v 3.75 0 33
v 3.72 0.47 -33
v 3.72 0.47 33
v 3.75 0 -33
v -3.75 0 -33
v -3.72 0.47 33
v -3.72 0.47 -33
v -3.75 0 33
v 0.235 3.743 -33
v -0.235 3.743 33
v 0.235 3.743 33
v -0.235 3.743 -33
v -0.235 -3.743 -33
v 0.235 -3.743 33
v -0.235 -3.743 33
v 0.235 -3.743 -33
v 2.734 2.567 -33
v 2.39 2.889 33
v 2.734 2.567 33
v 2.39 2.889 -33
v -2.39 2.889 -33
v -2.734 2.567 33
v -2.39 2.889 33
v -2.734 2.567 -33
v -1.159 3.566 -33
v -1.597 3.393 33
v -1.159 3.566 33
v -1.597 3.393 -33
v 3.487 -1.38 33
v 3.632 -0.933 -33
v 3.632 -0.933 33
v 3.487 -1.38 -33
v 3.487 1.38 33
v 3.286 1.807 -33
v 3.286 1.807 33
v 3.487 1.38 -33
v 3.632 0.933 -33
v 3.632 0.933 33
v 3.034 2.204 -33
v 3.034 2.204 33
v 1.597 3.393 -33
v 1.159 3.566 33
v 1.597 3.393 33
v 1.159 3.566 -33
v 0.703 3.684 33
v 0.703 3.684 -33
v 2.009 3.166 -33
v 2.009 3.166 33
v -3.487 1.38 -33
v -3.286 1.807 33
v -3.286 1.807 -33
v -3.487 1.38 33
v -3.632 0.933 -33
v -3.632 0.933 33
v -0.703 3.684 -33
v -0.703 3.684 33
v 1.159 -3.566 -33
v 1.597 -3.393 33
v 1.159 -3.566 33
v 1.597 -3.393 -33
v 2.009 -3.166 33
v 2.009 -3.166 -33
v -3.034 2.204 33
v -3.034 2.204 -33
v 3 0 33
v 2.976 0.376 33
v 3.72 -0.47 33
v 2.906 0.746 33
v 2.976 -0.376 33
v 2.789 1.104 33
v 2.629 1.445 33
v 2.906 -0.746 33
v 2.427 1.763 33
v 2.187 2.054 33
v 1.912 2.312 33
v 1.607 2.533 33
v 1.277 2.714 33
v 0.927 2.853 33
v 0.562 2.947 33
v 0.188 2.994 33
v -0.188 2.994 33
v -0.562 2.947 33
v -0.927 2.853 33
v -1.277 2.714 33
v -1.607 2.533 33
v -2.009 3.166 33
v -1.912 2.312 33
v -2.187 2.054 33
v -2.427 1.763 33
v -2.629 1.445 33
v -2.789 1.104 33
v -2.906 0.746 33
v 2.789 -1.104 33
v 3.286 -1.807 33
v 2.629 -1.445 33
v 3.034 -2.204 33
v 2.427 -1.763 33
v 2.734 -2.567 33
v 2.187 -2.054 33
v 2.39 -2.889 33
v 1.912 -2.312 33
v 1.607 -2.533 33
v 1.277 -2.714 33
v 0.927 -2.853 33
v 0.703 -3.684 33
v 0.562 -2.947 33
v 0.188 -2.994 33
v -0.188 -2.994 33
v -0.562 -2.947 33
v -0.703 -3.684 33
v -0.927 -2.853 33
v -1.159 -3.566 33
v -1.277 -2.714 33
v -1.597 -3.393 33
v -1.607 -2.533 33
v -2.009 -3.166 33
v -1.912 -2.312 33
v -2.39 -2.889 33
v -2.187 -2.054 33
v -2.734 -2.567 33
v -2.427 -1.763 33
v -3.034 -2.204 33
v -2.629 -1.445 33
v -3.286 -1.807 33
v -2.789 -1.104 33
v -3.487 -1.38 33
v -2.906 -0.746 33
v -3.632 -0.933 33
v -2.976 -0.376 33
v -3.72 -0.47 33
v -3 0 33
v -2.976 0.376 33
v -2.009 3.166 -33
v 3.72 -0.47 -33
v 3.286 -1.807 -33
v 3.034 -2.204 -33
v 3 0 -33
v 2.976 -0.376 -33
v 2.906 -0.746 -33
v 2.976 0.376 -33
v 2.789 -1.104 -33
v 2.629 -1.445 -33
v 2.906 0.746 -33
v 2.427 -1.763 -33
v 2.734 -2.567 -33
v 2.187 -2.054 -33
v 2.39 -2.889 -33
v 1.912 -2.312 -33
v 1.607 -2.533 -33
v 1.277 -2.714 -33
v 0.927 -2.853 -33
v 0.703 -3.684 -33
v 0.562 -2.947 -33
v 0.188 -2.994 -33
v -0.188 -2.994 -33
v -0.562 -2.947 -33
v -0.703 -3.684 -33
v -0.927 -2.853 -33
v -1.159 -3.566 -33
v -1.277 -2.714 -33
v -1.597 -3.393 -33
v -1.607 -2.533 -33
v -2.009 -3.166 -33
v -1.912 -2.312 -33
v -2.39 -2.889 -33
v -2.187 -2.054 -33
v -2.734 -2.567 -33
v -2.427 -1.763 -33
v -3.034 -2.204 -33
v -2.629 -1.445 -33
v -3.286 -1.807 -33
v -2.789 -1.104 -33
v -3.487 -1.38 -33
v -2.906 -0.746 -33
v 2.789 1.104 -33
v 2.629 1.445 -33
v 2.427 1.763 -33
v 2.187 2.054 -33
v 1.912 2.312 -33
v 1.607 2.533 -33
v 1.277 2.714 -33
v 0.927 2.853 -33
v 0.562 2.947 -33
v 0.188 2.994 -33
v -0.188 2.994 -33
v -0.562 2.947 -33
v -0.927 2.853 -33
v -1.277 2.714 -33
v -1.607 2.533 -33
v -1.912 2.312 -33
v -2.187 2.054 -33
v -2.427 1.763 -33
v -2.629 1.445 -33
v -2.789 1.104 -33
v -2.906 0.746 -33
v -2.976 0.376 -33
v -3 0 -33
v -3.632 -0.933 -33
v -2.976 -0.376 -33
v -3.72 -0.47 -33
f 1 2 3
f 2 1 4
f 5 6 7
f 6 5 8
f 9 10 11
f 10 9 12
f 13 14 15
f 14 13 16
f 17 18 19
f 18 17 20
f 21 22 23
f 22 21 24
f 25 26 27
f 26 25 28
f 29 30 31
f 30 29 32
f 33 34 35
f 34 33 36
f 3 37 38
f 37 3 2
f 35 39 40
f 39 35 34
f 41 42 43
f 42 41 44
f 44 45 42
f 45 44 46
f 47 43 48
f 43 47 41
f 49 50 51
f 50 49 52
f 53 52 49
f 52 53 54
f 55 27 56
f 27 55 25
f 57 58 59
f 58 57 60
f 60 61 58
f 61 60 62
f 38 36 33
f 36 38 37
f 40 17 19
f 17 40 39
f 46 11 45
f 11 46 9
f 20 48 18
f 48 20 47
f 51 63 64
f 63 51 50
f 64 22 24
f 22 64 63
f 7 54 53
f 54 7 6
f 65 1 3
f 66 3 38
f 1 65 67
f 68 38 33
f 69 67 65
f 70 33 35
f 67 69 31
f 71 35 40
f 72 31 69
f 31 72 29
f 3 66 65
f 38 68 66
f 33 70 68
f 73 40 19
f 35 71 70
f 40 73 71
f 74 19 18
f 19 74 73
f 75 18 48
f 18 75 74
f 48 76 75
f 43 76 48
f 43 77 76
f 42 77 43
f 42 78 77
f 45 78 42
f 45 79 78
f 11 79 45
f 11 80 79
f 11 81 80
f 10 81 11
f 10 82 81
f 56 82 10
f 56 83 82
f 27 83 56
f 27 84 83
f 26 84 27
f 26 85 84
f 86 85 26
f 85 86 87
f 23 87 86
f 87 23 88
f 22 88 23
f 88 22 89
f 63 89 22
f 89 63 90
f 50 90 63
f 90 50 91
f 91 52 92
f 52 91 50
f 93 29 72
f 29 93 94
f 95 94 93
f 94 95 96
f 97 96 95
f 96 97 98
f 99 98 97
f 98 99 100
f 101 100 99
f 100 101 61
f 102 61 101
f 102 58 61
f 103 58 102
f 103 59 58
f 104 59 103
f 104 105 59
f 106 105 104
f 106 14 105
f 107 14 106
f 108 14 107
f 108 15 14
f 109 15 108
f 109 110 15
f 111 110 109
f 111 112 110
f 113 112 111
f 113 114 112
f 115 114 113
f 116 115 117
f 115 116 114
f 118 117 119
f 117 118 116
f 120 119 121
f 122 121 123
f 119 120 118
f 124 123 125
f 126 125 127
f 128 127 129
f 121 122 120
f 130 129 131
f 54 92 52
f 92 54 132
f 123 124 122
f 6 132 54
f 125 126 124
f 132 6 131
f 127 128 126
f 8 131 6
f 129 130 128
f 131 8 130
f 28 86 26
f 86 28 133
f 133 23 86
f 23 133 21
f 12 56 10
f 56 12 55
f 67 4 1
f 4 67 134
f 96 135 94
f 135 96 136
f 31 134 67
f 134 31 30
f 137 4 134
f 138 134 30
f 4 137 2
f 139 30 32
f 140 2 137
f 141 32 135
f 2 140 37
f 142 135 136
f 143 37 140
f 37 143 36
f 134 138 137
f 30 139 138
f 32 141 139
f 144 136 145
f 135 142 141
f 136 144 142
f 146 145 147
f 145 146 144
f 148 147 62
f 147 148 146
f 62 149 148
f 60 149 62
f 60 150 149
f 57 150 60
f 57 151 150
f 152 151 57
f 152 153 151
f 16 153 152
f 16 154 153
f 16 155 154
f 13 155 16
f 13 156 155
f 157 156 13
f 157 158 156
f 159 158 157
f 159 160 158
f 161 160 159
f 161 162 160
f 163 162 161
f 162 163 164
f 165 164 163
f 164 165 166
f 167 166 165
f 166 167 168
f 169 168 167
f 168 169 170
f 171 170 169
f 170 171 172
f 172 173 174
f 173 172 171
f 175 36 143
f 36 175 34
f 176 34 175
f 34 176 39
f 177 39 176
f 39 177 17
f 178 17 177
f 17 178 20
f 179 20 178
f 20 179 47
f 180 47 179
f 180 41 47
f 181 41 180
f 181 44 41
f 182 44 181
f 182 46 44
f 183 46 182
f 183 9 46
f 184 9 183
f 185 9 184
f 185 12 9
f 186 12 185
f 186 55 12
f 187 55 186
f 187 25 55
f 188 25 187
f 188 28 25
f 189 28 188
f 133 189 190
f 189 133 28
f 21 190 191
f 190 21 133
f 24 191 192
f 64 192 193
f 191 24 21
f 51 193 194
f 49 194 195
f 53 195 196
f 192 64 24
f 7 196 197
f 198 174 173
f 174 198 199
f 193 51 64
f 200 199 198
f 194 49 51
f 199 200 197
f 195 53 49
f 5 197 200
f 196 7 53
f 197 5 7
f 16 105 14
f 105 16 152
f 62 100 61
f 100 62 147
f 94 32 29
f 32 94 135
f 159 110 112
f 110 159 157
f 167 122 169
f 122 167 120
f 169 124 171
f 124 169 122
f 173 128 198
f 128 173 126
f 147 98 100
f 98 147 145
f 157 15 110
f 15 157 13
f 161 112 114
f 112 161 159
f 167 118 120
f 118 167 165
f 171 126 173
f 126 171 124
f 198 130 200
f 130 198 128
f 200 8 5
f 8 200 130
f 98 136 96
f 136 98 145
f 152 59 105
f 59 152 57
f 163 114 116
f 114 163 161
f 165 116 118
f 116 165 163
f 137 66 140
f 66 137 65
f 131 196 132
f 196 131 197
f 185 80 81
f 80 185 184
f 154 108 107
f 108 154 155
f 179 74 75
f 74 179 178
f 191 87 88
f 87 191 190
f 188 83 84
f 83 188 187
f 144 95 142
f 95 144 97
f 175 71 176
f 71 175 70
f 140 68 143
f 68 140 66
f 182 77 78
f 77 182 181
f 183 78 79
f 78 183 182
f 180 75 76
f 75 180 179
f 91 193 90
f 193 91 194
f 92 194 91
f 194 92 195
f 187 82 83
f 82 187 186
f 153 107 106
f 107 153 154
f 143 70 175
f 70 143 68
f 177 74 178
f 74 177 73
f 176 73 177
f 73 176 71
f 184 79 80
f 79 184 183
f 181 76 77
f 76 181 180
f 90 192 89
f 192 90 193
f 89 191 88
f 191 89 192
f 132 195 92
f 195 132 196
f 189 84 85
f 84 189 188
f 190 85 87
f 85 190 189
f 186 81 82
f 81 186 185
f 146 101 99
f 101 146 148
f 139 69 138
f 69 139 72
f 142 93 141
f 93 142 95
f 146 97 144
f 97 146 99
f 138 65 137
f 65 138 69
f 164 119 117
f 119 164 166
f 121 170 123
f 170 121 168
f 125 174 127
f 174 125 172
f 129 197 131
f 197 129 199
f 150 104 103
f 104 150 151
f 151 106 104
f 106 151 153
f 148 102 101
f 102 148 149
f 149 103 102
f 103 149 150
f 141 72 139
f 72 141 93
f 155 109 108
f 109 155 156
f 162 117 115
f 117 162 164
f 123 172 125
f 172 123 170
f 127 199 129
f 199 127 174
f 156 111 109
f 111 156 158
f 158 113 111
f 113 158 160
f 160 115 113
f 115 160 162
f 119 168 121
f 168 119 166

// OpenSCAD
$fn = 50;


difference() {
	union() {
		translate(v = [0, 0, -33.0000000000]) {
			cylinder(h = 66, r = 3.7500000000);
		}
	}
	union() {
		translate(v = [0, 0, -100.0000000000]) {
			cylinder(h = 200, r = 3.0000000000);
		}
	}
}
